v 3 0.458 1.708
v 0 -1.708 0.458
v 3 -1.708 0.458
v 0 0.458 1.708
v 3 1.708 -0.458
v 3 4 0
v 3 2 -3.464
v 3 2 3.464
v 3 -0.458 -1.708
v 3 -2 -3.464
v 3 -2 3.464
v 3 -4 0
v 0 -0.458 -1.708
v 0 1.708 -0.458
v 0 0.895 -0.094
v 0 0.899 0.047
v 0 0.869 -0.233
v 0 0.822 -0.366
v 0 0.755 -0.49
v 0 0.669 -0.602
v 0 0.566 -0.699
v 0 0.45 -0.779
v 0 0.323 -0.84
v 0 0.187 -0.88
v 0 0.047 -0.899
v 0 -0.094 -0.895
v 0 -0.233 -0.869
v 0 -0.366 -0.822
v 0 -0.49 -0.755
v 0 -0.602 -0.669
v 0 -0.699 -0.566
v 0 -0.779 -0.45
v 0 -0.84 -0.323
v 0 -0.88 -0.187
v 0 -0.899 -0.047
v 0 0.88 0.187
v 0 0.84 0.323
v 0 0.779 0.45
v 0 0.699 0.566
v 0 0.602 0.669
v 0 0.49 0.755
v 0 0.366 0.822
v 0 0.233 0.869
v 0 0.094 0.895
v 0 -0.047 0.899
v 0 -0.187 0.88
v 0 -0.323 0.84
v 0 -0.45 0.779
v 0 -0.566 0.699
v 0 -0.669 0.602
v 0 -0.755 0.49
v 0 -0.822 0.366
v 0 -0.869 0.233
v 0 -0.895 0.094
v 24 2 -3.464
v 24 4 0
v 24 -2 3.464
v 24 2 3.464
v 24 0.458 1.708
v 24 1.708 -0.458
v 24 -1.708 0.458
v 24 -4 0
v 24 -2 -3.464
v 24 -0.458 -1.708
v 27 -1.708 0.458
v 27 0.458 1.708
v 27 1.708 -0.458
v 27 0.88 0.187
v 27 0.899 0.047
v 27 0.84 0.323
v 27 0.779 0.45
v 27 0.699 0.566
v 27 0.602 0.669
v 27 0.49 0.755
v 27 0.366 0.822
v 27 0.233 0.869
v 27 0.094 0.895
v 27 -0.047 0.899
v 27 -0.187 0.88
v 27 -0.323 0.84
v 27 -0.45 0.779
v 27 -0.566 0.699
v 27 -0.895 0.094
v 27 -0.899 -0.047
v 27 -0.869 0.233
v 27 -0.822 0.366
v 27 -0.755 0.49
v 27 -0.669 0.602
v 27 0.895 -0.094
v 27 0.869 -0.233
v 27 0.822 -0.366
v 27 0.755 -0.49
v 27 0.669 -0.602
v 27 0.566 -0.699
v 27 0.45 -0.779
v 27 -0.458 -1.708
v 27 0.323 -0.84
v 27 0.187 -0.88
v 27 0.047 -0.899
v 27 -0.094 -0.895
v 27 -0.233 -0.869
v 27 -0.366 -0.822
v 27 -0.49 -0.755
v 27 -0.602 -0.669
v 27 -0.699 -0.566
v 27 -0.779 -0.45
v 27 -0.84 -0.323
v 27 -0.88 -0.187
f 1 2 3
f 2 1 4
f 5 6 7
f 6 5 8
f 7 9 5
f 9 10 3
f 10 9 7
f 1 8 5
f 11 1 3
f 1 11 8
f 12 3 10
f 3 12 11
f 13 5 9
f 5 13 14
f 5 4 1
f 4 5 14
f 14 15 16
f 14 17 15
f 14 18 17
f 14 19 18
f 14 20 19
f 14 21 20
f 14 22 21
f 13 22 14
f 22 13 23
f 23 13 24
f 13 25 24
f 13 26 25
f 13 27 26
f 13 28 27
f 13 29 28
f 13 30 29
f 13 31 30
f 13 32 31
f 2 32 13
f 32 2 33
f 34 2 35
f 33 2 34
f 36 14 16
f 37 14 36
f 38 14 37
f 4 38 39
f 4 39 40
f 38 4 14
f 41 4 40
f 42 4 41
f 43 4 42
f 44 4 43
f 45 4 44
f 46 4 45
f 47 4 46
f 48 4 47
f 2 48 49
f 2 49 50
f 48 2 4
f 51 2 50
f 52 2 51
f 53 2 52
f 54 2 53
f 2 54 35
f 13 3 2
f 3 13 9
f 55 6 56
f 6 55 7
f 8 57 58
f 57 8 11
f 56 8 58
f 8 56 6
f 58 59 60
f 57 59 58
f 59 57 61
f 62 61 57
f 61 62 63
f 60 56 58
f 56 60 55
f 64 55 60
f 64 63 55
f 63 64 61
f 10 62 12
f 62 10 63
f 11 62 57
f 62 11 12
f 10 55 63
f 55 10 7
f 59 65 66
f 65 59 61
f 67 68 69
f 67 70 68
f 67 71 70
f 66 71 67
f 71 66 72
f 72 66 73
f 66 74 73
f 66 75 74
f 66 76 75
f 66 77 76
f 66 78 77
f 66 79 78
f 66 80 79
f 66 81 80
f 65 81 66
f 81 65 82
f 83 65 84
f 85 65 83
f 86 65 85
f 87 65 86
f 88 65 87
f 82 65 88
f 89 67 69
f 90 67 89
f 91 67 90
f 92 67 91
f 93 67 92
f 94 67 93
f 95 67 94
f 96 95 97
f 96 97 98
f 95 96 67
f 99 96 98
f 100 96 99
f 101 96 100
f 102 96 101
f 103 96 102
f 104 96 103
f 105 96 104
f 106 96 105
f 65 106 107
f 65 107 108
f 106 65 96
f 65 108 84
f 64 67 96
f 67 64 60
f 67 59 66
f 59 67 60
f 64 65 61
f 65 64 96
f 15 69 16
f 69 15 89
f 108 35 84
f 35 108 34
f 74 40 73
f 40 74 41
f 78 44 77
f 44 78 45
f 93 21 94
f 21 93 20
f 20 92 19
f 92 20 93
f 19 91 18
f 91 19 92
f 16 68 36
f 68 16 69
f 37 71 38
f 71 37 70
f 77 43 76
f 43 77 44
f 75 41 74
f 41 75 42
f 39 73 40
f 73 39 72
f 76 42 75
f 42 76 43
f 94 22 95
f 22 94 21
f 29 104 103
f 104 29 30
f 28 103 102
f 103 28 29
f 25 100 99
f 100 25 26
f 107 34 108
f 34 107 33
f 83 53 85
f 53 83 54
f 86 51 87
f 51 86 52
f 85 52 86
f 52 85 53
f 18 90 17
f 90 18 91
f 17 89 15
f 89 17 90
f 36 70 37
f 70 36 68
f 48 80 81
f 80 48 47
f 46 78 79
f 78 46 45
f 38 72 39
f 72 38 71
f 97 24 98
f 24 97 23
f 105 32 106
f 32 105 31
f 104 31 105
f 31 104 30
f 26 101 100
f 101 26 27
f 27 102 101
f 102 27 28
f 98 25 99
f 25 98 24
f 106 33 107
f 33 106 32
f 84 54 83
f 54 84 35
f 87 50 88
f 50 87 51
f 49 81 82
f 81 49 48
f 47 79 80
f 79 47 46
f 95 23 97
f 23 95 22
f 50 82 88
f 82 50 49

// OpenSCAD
// file: ModuleKatzenklappe.scad
// //////////////////////////////////
// Module für Katzenklappenverschluss
// //////////////////////////////////

module armHorn (laenge, breite, dicke) {
    difference() {
    union() {
    translate ([0,-breite/2,0])
    cube([laenge,breite,dicke], false);
    translate ([laenge,0,0])
    cylinder(dicke,r=breite/2, false); 
    }
    translate ([laenge*1.0,0,0])
    loch(radius=2,tiefe= dicke + 1);
/*    translate ([laenge*0.6,0,dicke-1])
    letter("Achim");
    translate ([laenge*0.6,0,1])
    rotate([0,180,0])
    letter("Tim");
    translate ([laenge*0.2,0,0])
    loch(radius=2,tiefe= dicke + 1);
*/    }
};

module mittelRad (breite) {
    difference() {
        cylinder(breite,r=12.5, false);
        cylinder(breite,r=2.0, false);
        
/*        translate([0,0,breite])
        gear (
            toothNo = 100, 
            toothWidth = 1, 
            toothHeight  = 2, 
            thickness = breite,
            holeRadius = 5,
            holeSides = 6
        );
        translate ([-25,0,0])
        loch(radius=5,tiefe=breite + 1);
        translate ([25,0,0])
        loch(radius=5,tiefe=breite + 1);
        translate ([0,-25,0])
        loch(radius=5,tiefe=breite + 1);
        translate ([0,25,0])
        loch(radius=5,tiefe=breite + 1);
*/        } 
};

module loch (radius, tiefe) {
        cylinder(tiefe,r=radius, false);   
};

module zapfen (breite,tiefe) {
        cube([breite,breite,tiefe], true);   
};

module wand (breite) {
    difference() {
        cube([breite,120,5], false);  
        translate ([5,5,0])
        cube([breite/3-10,110,5], false);  
        translate ([breite/3+5,5,0])
        cube([breite/3-10,110,5], false);  
        translate ([2*breite/3+5,5,0])
        cube([breite/3-10,110,5], false);  
    } 
};

module lArm(laenge, breite, dicke) {
    difference() {
        union() {
            armHorn(laenge=laenge, breite=breite, dicke=dicke);
            rotate(90) armHorn(laenge=laenge, breite=breite, dicke=dicke);
            cylinder(dicke,r=breite/2, false); 
           }
            translate ([0,0,0])
            zapfen(breite= 3, tiefe = dicke * 2);
        }
};

module mittelAchse(laenge, radius_achse, zapfen_breite, zapfen_laenge, breite) {
    difference() {
        union() {
            translate ([0,0,zapfen_laenge /2])
            zapfen(breite= zapfen_breite, tiefe=zapfen_laenge);   
            translate ([0,0,zapfen_laenge])
            cylinder(laenge,r = radius_achse, false, $fn=6);
            translate ([0,0,laenge+(1.5*zapfen_laenge)])
            zapfen(breite= zapfen_breite, tiefe=zapfen_laenge);   
        }
        cylinder (laenge+6,r=0.9, false);
    }
};

module achse(laenge, radius_achse) {
    difference() {
        cylinder(laenge,r = radius_achse, false, $fn=6);
        cylinder (laenge+6,r=0.9, false);
    }
};


module tooth(width, thickness, height){
  scale([width/5,thickness/5,height/10]){
    difference(){
      translate([-2.5,0,0])
      cube([5,5,10]);
      translate([5+1.25-2.5,0-1,0])
      rotate([0,-14.0362434,0])
        cube([5,5+2,12]);
      translate([0-1.25-2.5,0+5+1,0])
      rotate([0,-14.0362434,180])
        cube([5,5+2,12]);
    }
  }
}
module gear(toothNo, toothWidth, toothHeight, thickness,holeRadius,holeSides){
  radius = (toothWidth*1.7*toothNo)/3.141592653589793238/2;
  rotate([-90,0,0])
  difference(){
    union(){
      for(i=[0:toothNo]){
        rotate([0,(360/toothNo)*i,0])
        translate([0,0,radius-0.5])
          tooth(toothWidth,thickness,toothHeight);
      }
      translate([0,thickness,0])
      rotate([90,0,0])
        cylinder(r=radius, h=thickness);
    }
  translate([0,thickness+1,0])
  rotate([90,0,0])
    cylinder(r=holeRadius,h=thickness+2,$fn=holeSides);
  }
}

font = "Liberation Sans";


letter_size = 5;
letter_height = 3;


module letter(l) {
  // Use linear_extrude() to make the letters 3D objects as they
  // are only 2D shapes when only using text()
  linear_extrude(height = letter_height) {
    text(l, size = letter_size, font = font, halign = "center", valign = "center", $fn = 16);
  }
}


module 9g_motor(){
	difference(){			
		union(){
			color("SteelBlue") cube([23,12.5,22], center=true);
			color("SteelBlue") translate([0,0,5]) cube([32,12,2], center=true);
			color("SteelBlue") translate([5.5,0,2.75]) cylinder(r=6, h=25.75, $fn=20, center=true);
			color("SteelBlue") translate([-.5,0,2.75]) cylinder(r=1, h=25.75, $fn=20, center=true);
			color("SteelBlue") translate([-1,0,2.75]) cube([5,5.6,24.5], center=true);		
			color("white") translate([5.5,0,3.65]) cylinder(r=2.35, h=29.25, $fn=20, center=true);				
		}
		translate([10,0,-11]) rotate([0,-30,0]) cube([8,13,4], center=true);
		for ( hole = [14,-14] ){
			translate([hole,0,5]) cylinder(r=2.2, h=4, $fn=20, center=true);
		}	
	}
}

module sg90() {
	color("blue") difference() {
		union() {
			translate([0,0,22.5/2]) cube([22.5,12.2,22.5], center=true);
			translate([0,0,16.75]) cube([32.2,12.2,2], center=true);

			translate([0,0,22.5-1]) {
				hull() {
					translate([-1,0,0]) cylinder(d=5.5, h=4+1);
					translate([1,0,0]) cylinder(d=5.5, h=4+1);
				}

				translate([5.5,0,0]) cylinder(d=11.6, h=4+1);
			}

		}	

		translate([-32.5/2+2,0,16.75-2]) {
			cylinder(d=2, h=2+2);
			translate([-2,0,2]) cube([4,1,2+2], center=true);
		}
		translate([32.5/2-2,0,16.75-2]) {
			cylinder(d=2, h=2+2);
			translate([2,0,2]) cube([4,1,2+2], center=true);
		}
	}
	color("white") translate([5.5,0,22.5-1+4]) {
		difference() {
			cylinder(d=4.8, h=3+1);
			translate([0,0,1]) cylinder(d=2, h=4);
		}
	}
}

module stuetze (hoehe) {
    difference() {
        translate ([0,0,0])
        cube([hoehe,20,3], false);
        translate ([hoehe*0.8,10,0])
        cylinder(21,r=1.5, center=true);
        translate ([hoehe*0.7,10,0])
        cylinder(21,r=1.5, center=true);
        translate ([hoehe*0.6,10,0])
        cylinder(21,r=1.5, center=true);
        translate ([hoehe*0.5,10,0])
        cylinder(21,r=1.5, center=true);
    }
}

module balken (laenge) {
    difference() {
        translate ([0,-10,0])
        cube([5,laenge,3], false);
    }
/*    translate ([2.5,25,2.5])
        rotate(-90,90,0)
        letter("Design by Achim & Tim 2018");    
*/
}

module boden(laenge, breite) {
    difference() {
        cube([5,laenge,breite], false);
        rotate([0,90,0])
        translate ([-breite/2,laenge*0.1,0])
        cylinder(6,r=1.5, center=false);
        rotate([0,90,0])
        translate ([-breite/2,laenge*0.5,0])
        cylinder(6,r=1.5, center=false);
        rotate([0,90,0])
        translate ([-breite/2,laenge*0.9,0])
        cylinder(6,r=1.5, center=false);
    }
}

module wand(hoehe, anzahl, abstand) {
    for (a =[0:abstand:anzahl*abstand])
        translate ([0,a,0])
        stuetze(hoehe);
    translate ([0,10,0])
    balken(anzahl*abstand);
    translate ([hoehe-5,10,0])
    balken(anzahl*abstand);
}

module halterung(hoehe) {
    // Bodenplatte
    cube([5,22,36],false);
    difference(){
        // Motorhalterung
        cube([hoehe,22,15.5],false);
        translate ([hoehe-5,10,11])
        cylinder(6,r=0.5, center=false);
        translate ([10,10,11])
        cylinder(6,r=0.5, center=false);
    }
}
// main file
include <ModuleKatzenklappe.scad>;
$fn = 40;

// Maße der Mittelachse
mittelAchseLaenge       = 21;
mittelAchseRadius       = 4;
mittelAchseZapfenBreite = 2.5;
mittelAchseZapfenLaenge = 3;
mittelAchseRadBreite    = 5;


rotate([0,90,0])
rotate([0,0,30])
mittelAchse(laenge = mittelAchseLaenge, radius_achse = mittelAchseRadius, zapfen_breite = mittelAchseZapfenBreite, zapfen_laenge = mittelAchseZapfenLaenge, breite = mittelAchseRadBreite);
